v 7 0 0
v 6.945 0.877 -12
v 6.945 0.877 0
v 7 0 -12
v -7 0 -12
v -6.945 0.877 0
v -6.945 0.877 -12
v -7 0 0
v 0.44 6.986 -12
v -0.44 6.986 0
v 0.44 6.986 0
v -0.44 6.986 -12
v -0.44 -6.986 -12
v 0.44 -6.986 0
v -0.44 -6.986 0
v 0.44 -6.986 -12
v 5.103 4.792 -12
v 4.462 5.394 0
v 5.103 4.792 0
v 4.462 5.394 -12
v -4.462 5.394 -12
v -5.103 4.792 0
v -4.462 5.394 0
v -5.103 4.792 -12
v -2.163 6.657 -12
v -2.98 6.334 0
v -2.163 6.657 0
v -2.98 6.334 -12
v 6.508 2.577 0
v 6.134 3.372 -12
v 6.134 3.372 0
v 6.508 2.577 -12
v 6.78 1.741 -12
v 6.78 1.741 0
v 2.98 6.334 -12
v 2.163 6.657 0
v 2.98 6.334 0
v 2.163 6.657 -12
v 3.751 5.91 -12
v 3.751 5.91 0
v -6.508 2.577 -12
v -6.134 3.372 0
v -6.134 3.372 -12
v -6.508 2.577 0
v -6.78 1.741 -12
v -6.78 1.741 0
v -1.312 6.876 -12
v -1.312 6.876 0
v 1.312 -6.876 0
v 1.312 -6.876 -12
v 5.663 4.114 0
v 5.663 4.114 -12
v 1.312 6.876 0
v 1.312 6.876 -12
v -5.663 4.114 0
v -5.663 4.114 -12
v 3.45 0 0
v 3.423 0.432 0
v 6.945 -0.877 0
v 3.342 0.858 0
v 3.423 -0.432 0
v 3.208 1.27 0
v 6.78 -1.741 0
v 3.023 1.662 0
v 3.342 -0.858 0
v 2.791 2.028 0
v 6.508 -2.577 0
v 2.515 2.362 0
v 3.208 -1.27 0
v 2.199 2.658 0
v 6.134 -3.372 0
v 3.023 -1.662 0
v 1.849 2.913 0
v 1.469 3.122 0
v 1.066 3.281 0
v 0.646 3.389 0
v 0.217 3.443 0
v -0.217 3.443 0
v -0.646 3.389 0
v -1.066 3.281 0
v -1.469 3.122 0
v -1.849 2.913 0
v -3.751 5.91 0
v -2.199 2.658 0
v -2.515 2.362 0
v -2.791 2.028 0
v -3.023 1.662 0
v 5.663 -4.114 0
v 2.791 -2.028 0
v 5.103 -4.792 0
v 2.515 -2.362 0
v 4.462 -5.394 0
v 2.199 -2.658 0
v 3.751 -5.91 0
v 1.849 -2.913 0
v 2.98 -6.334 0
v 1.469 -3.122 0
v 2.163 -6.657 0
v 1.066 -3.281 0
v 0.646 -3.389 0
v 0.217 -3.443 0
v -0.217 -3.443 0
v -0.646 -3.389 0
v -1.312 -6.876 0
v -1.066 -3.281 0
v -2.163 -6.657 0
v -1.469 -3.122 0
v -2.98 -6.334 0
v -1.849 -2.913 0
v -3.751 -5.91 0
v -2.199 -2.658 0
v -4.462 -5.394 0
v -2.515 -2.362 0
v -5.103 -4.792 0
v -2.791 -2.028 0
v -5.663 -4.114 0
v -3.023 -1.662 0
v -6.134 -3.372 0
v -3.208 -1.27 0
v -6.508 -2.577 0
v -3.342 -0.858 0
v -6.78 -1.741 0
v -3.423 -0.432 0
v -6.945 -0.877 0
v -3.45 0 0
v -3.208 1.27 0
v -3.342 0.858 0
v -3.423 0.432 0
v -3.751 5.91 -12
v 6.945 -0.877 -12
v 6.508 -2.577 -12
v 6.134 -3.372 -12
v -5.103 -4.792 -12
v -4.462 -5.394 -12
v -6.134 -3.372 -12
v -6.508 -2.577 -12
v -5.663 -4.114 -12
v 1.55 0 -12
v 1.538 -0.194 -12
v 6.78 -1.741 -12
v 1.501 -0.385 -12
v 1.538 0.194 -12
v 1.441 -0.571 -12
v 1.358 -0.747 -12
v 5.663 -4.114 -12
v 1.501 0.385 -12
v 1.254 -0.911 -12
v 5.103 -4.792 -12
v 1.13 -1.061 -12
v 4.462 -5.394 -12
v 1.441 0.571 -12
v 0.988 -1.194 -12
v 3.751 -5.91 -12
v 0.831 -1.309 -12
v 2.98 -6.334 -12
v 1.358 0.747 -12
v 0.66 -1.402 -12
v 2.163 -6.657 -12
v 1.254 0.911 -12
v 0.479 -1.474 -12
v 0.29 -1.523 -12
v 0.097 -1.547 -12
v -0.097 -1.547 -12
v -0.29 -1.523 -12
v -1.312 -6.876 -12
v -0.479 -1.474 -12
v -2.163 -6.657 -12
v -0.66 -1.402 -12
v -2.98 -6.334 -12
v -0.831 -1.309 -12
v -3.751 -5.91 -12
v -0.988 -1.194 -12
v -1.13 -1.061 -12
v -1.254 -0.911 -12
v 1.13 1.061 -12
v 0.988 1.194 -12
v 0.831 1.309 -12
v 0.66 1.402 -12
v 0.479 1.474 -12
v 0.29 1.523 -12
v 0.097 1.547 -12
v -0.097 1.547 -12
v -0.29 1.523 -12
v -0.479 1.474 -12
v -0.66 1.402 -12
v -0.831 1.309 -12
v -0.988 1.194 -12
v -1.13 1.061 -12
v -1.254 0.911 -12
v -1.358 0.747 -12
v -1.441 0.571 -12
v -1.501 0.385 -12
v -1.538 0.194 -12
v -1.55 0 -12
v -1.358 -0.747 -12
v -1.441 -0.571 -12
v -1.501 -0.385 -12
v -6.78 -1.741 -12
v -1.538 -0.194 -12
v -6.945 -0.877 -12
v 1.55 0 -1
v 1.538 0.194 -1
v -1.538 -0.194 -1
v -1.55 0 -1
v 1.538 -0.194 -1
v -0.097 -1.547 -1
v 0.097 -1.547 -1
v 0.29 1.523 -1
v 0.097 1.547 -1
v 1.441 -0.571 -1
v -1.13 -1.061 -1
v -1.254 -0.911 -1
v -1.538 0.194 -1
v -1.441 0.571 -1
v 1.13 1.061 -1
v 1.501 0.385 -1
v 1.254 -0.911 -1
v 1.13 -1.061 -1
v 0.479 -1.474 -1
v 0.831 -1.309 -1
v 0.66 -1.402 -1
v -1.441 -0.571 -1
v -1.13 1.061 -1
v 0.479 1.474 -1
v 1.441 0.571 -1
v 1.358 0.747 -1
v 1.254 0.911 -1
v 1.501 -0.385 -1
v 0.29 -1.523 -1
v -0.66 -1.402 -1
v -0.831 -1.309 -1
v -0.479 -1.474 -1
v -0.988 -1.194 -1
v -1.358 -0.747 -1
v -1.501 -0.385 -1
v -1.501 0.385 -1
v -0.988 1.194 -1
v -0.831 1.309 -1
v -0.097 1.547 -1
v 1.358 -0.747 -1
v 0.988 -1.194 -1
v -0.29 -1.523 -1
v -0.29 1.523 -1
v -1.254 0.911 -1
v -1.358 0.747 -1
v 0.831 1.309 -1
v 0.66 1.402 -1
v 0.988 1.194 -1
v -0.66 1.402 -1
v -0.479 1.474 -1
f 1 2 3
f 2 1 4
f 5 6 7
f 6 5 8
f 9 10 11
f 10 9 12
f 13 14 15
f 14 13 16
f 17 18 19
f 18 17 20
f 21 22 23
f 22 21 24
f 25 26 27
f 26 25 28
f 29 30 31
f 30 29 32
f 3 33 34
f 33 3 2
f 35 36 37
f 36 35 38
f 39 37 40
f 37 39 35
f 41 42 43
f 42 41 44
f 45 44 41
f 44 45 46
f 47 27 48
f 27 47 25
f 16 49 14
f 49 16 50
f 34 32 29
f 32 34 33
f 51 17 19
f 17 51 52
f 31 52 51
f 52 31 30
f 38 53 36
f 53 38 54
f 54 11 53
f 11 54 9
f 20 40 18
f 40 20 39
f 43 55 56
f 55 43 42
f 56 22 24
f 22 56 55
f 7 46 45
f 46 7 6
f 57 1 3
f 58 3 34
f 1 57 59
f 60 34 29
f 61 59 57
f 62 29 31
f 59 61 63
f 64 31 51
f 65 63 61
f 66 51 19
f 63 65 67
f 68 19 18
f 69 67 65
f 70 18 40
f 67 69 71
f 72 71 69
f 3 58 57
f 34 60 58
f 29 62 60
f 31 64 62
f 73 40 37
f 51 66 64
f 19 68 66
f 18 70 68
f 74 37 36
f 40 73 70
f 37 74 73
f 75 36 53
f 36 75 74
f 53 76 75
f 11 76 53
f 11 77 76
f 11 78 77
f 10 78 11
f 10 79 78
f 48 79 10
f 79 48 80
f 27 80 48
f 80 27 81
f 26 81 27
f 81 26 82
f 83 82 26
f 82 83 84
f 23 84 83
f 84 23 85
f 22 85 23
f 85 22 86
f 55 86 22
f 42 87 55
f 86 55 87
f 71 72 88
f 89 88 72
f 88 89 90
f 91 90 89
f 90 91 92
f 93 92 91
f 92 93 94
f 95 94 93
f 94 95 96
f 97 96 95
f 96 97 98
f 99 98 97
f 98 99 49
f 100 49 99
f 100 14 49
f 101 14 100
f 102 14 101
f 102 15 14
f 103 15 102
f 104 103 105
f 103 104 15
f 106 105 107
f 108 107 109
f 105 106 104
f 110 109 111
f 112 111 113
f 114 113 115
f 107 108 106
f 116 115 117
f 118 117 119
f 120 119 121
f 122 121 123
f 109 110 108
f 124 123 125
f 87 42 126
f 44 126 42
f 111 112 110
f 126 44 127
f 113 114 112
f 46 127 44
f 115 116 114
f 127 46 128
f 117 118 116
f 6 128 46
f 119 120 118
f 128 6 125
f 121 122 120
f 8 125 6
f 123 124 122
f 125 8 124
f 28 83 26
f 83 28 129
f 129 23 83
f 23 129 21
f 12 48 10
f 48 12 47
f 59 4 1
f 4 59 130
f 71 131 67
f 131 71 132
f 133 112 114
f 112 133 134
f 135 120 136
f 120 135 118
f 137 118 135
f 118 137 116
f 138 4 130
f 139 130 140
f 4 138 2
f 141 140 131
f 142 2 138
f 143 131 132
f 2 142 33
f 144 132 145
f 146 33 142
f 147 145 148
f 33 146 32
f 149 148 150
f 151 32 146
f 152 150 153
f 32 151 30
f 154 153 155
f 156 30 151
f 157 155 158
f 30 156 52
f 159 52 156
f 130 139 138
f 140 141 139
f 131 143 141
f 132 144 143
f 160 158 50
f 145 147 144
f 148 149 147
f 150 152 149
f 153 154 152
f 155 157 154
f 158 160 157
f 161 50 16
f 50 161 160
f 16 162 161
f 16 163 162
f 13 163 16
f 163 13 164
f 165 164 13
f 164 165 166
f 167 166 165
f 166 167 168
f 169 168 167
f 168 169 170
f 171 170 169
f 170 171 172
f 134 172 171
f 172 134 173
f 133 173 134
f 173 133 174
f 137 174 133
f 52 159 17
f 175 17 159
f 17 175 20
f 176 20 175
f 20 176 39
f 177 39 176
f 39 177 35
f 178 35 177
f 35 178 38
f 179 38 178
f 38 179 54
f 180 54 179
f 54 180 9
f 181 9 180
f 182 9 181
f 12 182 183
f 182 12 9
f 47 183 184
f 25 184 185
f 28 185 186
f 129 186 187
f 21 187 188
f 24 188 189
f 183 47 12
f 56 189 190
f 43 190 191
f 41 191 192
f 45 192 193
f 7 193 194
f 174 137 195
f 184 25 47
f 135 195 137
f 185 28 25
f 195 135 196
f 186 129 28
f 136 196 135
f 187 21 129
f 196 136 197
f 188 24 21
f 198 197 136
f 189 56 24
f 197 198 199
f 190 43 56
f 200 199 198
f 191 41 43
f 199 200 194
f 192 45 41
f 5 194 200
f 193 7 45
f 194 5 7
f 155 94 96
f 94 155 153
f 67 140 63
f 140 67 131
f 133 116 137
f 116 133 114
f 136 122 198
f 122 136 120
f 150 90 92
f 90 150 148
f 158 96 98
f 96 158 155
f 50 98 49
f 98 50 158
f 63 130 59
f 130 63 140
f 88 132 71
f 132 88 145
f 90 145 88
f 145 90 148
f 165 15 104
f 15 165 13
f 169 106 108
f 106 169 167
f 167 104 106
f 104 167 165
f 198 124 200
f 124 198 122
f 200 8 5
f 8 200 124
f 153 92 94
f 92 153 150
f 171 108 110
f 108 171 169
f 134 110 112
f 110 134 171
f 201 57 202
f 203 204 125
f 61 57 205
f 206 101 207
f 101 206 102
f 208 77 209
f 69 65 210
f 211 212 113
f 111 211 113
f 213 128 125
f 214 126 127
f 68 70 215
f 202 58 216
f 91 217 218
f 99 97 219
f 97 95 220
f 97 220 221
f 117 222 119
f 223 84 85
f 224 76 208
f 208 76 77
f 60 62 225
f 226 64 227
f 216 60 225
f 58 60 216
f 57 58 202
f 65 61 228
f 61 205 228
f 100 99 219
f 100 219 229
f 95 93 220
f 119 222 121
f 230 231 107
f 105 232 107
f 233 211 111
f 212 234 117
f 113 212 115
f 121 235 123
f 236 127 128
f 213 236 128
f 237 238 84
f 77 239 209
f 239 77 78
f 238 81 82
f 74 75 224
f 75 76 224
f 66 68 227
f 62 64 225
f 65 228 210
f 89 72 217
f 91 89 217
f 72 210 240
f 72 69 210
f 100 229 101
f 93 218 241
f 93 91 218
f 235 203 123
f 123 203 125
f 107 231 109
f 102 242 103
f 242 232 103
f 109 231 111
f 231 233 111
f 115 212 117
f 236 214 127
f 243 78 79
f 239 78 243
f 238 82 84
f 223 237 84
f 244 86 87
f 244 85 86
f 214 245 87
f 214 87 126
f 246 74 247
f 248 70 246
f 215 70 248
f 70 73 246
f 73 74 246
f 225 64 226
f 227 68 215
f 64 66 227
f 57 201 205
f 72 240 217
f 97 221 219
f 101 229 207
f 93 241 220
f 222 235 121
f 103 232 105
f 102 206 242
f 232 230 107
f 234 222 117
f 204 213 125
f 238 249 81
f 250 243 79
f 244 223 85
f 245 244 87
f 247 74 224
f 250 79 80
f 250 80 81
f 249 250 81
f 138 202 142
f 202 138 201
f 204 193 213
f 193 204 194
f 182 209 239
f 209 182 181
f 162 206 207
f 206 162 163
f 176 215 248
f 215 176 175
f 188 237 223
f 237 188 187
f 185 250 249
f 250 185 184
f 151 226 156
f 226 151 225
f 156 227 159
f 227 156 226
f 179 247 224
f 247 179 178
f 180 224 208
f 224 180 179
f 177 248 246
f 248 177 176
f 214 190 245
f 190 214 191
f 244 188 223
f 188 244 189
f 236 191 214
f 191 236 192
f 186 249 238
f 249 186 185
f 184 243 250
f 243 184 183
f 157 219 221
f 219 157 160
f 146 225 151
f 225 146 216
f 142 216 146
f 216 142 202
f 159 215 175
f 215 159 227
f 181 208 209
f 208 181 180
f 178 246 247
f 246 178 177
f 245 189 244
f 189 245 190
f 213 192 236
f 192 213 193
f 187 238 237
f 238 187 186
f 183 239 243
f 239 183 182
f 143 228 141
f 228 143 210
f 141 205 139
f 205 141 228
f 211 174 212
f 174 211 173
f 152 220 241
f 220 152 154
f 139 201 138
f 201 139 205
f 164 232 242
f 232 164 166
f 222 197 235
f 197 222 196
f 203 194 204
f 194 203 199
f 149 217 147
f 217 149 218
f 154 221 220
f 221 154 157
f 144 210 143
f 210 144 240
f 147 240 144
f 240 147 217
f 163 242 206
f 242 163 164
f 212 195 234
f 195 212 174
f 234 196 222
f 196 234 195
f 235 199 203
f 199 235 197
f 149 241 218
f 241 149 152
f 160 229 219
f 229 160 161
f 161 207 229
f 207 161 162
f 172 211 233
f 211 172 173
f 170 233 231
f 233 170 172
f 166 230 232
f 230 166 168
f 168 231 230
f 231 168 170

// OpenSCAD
$fn = 50;


difference() {
	union() {
		translate(v = [0, 0, -12.0000000000]) {
			cylinder(h = 12, r = 7.0000000000);
		}
		translate(v = [0, 0, -12.0000000000]) {
			cylinder(h = 12, r = 2.8750000000);
		}
	}
	union() {
		translate(v = [0, 0, 0]) {
			rotate(a = [0, 0, 0]) {
				difference() {
					union() {
						translate(v = [0, 0, -12.0000000000]) {
							cylinder(h = 12, r = 1.2500000000);
						}
						translate(v = [0, 0, -1.0000000000]) {
							cylinder(h = 1.0000000000, r1 = 1.5500000000, r2 = 3.4500000000);
						}
						translate(v = [0, 0, -12.0000000000]) {
							cylinder(h = 12, r = 1.5500000000);
						}
						translate(v = [0, 0, -12.0000000000]) {
							cylinder(h = 12, r = 1.2500000000);
						}
					}
					union();
				}
			}
		}
	}
}
